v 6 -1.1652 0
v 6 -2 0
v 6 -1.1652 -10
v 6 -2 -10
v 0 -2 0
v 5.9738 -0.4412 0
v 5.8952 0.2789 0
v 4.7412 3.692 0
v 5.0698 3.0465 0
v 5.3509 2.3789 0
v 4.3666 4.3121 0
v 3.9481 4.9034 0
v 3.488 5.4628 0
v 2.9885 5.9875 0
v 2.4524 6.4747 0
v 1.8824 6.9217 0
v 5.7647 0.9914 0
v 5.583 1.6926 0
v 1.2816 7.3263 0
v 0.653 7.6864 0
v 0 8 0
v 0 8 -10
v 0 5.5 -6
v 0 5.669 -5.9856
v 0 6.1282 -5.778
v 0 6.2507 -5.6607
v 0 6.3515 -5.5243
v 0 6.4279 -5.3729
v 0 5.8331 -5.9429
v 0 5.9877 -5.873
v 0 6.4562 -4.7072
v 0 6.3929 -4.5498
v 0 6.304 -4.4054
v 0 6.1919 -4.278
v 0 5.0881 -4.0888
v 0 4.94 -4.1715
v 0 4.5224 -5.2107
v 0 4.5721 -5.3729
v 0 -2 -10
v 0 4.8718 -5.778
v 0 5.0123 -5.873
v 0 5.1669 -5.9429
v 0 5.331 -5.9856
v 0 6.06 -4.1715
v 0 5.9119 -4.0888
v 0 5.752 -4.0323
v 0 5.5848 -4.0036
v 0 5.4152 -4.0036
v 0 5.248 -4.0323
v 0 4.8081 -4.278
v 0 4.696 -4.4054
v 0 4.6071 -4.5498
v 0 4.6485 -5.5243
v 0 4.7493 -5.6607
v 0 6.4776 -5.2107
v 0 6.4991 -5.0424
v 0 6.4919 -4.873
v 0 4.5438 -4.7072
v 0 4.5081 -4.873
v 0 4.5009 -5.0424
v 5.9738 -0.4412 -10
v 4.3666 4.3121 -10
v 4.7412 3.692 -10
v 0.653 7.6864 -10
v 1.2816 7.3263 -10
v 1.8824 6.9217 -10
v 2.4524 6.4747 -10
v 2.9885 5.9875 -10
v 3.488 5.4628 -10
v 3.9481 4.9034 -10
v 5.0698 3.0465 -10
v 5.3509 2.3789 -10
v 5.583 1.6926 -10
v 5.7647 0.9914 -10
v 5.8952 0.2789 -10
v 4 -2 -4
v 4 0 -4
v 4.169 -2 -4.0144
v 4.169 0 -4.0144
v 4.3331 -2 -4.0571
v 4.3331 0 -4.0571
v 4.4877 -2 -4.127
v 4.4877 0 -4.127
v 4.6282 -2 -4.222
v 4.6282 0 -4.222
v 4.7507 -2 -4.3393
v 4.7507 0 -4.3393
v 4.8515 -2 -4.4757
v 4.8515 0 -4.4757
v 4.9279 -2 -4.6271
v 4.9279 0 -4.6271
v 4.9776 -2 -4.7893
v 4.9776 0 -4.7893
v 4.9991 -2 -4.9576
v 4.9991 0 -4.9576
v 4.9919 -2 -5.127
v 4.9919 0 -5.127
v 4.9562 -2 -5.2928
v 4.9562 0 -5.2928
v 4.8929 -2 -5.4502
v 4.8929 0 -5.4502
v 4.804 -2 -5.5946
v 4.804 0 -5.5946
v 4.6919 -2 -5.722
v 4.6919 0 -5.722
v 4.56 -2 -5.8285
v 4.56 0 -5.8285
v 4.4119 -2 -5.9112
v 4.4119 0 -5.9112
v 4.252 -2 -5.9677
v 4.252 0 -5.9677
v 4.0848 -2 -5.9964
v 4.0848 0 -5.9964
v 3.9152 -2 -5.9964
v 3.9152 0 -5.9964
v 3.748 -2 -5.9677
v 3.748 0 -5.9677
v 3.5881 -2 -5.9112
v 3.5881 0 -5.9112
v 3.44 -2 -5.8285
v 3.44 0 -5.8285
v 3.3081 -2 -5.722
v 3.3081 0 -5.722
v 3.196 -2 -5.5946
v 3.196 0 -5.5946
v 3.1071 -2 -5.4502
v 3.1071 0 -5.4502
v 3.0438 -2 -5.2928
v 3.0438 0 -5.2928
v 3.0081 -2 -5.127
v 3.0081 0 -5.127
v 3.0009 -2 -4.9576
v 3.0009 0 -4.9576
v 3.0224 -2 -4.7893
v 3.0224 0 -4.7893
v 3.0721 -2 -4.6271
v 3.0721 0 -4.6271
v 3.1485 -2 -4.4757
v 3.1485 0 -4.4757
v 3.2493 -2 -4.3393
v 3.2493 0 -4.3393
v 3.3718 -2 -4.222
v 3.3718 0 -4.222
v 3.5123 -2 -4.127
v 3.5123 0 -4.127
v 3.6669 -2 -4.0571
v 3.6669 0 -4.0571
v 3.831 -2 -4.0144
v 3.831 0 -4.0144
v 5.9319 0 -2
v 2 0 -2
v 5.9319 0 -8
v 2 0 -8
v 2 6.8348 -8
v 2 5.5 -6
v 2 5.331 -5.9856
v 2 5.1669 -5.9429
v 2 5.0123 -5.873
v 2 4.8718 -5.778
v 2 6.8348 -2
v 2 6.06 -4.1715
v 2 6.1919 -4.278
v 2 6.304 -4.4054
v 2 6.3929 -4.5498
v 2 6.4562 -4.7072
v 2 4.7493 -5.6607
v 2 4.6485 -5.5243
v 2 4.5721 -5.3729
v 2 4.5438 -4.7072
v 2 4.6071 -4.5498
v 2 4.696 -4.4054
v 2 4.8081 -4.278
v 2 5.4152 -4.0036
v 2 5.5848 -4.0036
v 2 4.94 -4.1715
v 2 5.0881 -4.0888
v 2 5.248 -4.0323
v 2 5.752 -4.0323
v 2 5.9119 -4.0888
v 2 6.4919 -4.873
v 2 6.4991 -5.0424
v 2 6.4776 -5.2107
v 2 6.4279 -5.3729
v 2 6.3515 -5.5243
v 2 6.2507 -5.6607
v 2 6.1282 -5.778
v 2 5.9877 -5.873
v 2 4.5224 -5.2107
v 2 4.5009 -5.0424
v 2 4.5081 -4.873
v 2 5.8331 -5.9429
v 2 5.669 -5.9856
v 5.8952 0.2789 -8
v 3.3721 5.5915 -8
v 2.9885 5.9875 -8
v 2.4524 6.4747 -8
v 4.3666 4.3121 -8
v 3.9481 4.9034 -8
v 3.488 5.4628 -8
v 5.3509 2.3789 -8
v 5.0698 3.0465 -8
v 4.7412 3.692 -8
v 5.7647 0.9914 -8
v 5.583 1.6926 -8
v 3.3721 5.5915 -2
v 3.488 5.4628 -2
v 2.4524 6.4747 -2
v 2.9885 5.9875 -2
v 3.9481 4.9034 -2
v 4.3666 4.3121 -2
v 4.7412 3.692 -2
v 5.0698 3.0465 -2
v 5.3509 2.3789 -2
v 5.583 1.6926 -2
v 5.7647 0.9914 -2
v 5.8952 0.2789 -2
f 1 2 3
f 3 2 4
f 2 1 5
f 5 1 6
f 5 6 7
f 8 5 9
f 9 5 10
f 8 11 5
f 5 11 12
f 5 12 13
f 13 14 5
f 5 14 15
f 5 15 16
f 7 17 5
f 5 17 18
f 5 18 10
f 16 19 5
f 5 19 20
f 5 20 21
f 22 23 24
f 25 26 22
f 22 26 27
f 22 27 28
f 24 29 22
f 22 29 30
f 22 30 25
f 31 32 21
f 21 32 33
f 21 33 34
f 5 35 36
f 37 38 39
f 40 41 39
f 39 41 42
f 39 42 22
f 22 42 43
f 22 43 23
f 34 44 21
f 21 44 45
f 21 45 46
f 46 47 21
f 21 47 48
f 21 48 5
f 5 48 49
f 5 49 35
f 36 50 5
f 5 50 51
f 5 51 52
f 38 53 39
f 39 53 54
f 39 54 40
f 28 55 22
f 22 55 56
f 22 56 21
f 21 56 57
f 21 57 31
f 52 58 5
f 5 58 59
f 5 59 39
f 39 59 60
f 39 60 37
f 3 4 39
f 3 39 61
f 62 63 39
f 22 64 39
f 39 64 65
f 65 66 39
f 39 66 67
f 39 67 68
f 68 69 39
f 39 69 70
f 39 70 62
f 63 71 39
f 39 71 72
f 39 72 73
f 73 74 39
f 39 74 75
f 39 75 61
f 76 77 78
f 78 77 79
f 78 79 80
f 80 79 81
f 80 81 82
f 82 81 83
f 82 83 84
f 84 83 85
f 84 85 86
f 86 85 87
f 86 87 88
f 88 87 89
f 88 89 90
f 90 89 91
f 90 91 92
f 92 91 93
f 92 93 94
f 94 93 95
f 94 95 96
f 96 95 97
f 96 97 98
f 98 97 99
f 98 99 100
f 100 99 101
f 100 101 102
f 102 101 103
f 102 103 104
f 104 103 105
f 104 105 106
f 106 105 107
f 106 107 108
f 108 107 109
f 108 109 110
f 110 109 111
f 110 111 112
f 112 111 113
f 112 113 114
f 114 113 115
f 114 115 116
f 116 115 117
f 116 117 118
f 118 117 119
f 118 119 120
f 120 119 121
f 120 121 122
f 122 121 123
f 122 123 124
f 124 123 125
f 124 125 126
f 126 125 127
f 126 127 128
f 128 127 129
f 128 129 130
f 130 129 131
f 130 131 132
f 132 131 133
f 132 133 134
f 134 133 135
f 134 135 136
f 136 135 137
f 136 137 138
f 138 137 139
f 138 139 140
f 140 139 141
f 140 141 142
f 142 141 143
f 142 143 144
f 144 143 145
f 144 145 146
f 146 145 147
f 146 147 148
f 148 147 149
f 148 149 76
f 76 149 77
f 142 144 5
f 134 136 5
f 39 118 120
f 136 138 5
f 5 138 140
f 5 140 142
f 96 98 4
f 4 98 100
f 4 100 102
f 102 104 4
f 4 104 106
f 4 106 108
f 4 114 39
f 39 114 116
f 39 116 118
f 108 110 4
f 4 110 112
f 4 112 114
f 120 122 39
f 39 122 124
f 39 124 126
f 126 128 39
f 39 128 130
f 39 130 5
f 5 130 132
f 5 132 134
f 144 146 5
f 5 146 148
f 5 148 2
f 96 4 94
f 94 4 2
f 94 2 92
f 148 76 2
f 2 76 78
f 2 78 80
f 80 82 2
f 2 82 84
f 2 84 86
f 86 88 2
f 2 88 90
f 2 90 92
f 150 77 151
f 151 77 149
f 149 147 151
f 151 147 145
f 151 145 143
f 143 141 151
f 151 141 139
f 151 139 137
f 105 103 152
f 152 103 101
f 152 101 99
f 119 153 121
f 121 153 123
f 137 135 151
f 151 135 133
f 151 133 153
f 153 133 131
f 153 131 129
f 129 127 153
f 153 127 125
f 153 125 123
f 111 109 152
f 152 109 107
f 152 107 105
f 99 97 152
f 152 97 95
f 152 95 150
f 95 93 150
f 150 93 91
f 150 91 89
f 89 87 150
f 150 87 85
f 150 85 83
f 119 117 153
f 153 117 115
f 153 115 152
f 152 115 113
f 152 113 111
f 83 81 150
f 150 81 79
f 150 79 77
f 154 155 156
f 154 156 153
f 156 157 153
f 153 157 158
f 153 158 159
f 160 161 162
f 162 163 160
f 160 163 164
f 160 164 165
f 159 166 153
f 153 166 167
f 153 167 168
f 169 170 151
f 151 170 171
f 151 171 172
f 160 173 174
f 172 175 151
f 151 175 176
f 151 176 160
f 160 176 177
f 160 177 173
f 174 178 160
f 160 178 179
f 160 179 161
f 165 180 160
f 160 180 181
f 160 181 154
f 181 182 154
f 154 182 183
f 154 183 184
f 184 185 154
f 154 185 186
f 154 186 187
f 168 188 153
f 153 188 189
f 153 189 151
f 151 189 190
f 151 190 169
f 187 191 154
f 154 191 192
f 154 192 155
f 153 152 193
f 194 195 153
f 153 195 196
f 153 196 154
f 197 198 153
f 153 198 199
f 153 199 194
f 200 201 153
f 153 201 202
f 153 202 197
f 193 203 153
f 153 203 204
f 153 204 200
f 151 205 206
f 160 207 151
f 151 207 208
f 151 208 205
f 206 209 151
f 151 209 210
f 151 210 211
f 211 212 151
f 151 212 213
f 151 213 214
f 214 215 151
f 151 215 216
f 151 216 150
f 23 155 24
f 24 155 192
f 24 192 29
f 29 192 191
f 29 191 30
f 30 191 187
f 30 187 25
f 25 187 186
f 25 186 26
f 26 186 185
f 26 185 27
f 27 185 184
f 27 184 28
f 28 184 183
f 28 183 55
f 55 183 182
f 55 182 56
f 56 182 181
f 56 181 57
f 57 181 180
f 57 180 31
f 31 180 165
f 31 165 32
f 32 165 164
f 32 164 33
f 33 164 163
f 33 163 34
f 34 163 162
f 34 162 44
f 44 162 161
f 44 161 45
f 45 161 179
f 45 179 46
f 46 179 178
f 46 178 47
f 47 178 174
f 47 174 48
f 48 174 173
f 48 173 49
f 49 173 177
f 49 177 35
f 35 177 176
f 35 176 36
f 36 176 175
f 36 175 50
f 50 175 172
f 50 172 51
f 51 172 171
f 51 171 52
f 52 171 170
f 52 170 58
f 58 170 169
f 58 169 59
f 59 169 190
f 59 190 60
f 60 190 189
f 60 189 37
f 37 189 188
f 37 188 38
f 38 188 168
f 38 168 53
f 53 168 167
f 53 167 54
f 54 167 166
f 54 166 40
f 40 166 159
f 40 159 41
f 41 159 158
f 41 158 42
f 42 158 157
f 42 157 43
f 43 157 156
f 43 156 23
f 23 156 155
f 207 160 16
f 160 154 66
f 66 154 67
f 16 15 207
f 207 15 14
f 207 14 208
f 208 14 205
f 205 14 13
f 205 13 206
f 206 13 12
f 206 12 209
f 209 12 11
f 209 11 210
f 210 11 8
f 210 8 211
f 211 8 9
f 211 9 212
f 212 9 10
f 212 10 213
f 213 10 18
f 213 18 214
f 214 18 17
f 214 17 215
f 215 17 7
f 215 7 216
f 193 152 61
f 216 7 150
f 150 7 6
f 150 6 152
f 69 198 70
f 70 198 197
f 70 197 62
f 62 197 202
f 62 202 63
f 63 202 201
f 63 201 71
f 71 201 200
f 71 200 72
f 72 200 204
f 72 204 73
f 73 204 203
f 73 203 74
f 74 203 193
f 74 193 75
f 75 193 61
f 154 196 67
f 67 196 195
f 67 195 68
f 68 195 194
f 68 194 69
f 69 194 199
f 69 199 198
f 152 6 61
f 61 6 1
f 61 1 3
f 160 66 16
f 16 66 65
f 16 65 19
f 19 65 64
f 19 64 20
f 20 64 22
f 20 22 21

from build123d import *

# Parameters (mm, degrees)
CROQUIS1_W              = 4
CROQUIS1_H              = 6
CROQUIS1_R              = 1
SALIENTE_EXTRUIR1_DEPTH = 2
SALIENTE_EXTRUIR2_DEPTH = 8
CROQUIS2_R              = 1
CORTAR_EXTRUIR1_DEPTH   = 14.416407865
REDONDEO1_R             = 10


with BuildPart() as part:
    # Croquis1 → Saliente-Extruir1 (new body)
    # profile 1 of 2: a face of its own
    with BuildSketch(Plane(origin=(0, 0, 0), x_dir=(1, 0, 0), z_dir=(0, 1, 0))):
        with Locations((4, 5)):
            Rectangle(CROQUIS1_W, CROQUIS1_H)
        with Locations(Location((4, 5, 0), (0, 0, 270))):
            Circle(CROQUIS1_R, mode=Mode.SUBTRACT)
    # profile 2 of 2: a face of its own
    with BuildSketch(Plane(origin=(0, 0, 0), x_dir=(1, 0, 0), z_dir=(0, 1, 0))):
        Polygon((6, 0), (6, 2), (2, 2), (2, 8), (6, 8), (6, 10), (0, 10), (0, 0), align=None)
    extrude(amount=-SALIENTE_EXTRUIR1_DEPTH)

    # Croquis1<3> → Saliente-Extruir2 (add)
    with BuildSketch(Plane(origin=(0, 0, 0), x_dir=(1, 0, 0), z_dir=(0, 1, 0))):
        Polygon((6, 0), (6, 2), (2, 2), (2, 8), (6, 8), (6, 10), (0, 10), (0, 0), align=None)
    extrude(amount=SALIENTE_EXTRUIR2_DEPTH)

    # Croquis2 → Cortar-Extruir1 (cut, through all)
    with BuildSketch(Plane(origin=(2, 0, 0), x_dir=(0, 0, -1), z_dir=(1, 0, 0))):
        with Locations((5, 5.5)):
            Circle(CROQUIS2_R)
    extrude(amount=-CORTAR_EXTRUIR1_DEPTH, mode=Mode.SUBTRACT)

    # Redondeo1
    # the kernel refuses this fillet: 10 mm, written as the material it takes off along each edge
    with BuildSketch(Plane(origin=(6, 8, 22.912878475), x_dir=(0, -1, 0), z_dir=(0, 0, -1))) as redondeo1_piece_1:
        with BuildLine():
            CenterArc((9.16515139, 10), REDONDEO1_R, 203.578178478, 66.421821522)
            Line((0, 6), (-0.183303028, 5.92))
            ThreePointArc((-0.183303028, 5.92), (-0.2, 3), (-0.2, 0))
            Line((-0.2, 0), (0, -0.2))
            Line((0, -0.2), (9.16515139, -0.2))
            Line((9.16515139, -0.2), (9.16515139, 0))
        make_face()
    extrude(amount=47.82575695, mode=Mode.SUBTRACT)


solid = part.part
